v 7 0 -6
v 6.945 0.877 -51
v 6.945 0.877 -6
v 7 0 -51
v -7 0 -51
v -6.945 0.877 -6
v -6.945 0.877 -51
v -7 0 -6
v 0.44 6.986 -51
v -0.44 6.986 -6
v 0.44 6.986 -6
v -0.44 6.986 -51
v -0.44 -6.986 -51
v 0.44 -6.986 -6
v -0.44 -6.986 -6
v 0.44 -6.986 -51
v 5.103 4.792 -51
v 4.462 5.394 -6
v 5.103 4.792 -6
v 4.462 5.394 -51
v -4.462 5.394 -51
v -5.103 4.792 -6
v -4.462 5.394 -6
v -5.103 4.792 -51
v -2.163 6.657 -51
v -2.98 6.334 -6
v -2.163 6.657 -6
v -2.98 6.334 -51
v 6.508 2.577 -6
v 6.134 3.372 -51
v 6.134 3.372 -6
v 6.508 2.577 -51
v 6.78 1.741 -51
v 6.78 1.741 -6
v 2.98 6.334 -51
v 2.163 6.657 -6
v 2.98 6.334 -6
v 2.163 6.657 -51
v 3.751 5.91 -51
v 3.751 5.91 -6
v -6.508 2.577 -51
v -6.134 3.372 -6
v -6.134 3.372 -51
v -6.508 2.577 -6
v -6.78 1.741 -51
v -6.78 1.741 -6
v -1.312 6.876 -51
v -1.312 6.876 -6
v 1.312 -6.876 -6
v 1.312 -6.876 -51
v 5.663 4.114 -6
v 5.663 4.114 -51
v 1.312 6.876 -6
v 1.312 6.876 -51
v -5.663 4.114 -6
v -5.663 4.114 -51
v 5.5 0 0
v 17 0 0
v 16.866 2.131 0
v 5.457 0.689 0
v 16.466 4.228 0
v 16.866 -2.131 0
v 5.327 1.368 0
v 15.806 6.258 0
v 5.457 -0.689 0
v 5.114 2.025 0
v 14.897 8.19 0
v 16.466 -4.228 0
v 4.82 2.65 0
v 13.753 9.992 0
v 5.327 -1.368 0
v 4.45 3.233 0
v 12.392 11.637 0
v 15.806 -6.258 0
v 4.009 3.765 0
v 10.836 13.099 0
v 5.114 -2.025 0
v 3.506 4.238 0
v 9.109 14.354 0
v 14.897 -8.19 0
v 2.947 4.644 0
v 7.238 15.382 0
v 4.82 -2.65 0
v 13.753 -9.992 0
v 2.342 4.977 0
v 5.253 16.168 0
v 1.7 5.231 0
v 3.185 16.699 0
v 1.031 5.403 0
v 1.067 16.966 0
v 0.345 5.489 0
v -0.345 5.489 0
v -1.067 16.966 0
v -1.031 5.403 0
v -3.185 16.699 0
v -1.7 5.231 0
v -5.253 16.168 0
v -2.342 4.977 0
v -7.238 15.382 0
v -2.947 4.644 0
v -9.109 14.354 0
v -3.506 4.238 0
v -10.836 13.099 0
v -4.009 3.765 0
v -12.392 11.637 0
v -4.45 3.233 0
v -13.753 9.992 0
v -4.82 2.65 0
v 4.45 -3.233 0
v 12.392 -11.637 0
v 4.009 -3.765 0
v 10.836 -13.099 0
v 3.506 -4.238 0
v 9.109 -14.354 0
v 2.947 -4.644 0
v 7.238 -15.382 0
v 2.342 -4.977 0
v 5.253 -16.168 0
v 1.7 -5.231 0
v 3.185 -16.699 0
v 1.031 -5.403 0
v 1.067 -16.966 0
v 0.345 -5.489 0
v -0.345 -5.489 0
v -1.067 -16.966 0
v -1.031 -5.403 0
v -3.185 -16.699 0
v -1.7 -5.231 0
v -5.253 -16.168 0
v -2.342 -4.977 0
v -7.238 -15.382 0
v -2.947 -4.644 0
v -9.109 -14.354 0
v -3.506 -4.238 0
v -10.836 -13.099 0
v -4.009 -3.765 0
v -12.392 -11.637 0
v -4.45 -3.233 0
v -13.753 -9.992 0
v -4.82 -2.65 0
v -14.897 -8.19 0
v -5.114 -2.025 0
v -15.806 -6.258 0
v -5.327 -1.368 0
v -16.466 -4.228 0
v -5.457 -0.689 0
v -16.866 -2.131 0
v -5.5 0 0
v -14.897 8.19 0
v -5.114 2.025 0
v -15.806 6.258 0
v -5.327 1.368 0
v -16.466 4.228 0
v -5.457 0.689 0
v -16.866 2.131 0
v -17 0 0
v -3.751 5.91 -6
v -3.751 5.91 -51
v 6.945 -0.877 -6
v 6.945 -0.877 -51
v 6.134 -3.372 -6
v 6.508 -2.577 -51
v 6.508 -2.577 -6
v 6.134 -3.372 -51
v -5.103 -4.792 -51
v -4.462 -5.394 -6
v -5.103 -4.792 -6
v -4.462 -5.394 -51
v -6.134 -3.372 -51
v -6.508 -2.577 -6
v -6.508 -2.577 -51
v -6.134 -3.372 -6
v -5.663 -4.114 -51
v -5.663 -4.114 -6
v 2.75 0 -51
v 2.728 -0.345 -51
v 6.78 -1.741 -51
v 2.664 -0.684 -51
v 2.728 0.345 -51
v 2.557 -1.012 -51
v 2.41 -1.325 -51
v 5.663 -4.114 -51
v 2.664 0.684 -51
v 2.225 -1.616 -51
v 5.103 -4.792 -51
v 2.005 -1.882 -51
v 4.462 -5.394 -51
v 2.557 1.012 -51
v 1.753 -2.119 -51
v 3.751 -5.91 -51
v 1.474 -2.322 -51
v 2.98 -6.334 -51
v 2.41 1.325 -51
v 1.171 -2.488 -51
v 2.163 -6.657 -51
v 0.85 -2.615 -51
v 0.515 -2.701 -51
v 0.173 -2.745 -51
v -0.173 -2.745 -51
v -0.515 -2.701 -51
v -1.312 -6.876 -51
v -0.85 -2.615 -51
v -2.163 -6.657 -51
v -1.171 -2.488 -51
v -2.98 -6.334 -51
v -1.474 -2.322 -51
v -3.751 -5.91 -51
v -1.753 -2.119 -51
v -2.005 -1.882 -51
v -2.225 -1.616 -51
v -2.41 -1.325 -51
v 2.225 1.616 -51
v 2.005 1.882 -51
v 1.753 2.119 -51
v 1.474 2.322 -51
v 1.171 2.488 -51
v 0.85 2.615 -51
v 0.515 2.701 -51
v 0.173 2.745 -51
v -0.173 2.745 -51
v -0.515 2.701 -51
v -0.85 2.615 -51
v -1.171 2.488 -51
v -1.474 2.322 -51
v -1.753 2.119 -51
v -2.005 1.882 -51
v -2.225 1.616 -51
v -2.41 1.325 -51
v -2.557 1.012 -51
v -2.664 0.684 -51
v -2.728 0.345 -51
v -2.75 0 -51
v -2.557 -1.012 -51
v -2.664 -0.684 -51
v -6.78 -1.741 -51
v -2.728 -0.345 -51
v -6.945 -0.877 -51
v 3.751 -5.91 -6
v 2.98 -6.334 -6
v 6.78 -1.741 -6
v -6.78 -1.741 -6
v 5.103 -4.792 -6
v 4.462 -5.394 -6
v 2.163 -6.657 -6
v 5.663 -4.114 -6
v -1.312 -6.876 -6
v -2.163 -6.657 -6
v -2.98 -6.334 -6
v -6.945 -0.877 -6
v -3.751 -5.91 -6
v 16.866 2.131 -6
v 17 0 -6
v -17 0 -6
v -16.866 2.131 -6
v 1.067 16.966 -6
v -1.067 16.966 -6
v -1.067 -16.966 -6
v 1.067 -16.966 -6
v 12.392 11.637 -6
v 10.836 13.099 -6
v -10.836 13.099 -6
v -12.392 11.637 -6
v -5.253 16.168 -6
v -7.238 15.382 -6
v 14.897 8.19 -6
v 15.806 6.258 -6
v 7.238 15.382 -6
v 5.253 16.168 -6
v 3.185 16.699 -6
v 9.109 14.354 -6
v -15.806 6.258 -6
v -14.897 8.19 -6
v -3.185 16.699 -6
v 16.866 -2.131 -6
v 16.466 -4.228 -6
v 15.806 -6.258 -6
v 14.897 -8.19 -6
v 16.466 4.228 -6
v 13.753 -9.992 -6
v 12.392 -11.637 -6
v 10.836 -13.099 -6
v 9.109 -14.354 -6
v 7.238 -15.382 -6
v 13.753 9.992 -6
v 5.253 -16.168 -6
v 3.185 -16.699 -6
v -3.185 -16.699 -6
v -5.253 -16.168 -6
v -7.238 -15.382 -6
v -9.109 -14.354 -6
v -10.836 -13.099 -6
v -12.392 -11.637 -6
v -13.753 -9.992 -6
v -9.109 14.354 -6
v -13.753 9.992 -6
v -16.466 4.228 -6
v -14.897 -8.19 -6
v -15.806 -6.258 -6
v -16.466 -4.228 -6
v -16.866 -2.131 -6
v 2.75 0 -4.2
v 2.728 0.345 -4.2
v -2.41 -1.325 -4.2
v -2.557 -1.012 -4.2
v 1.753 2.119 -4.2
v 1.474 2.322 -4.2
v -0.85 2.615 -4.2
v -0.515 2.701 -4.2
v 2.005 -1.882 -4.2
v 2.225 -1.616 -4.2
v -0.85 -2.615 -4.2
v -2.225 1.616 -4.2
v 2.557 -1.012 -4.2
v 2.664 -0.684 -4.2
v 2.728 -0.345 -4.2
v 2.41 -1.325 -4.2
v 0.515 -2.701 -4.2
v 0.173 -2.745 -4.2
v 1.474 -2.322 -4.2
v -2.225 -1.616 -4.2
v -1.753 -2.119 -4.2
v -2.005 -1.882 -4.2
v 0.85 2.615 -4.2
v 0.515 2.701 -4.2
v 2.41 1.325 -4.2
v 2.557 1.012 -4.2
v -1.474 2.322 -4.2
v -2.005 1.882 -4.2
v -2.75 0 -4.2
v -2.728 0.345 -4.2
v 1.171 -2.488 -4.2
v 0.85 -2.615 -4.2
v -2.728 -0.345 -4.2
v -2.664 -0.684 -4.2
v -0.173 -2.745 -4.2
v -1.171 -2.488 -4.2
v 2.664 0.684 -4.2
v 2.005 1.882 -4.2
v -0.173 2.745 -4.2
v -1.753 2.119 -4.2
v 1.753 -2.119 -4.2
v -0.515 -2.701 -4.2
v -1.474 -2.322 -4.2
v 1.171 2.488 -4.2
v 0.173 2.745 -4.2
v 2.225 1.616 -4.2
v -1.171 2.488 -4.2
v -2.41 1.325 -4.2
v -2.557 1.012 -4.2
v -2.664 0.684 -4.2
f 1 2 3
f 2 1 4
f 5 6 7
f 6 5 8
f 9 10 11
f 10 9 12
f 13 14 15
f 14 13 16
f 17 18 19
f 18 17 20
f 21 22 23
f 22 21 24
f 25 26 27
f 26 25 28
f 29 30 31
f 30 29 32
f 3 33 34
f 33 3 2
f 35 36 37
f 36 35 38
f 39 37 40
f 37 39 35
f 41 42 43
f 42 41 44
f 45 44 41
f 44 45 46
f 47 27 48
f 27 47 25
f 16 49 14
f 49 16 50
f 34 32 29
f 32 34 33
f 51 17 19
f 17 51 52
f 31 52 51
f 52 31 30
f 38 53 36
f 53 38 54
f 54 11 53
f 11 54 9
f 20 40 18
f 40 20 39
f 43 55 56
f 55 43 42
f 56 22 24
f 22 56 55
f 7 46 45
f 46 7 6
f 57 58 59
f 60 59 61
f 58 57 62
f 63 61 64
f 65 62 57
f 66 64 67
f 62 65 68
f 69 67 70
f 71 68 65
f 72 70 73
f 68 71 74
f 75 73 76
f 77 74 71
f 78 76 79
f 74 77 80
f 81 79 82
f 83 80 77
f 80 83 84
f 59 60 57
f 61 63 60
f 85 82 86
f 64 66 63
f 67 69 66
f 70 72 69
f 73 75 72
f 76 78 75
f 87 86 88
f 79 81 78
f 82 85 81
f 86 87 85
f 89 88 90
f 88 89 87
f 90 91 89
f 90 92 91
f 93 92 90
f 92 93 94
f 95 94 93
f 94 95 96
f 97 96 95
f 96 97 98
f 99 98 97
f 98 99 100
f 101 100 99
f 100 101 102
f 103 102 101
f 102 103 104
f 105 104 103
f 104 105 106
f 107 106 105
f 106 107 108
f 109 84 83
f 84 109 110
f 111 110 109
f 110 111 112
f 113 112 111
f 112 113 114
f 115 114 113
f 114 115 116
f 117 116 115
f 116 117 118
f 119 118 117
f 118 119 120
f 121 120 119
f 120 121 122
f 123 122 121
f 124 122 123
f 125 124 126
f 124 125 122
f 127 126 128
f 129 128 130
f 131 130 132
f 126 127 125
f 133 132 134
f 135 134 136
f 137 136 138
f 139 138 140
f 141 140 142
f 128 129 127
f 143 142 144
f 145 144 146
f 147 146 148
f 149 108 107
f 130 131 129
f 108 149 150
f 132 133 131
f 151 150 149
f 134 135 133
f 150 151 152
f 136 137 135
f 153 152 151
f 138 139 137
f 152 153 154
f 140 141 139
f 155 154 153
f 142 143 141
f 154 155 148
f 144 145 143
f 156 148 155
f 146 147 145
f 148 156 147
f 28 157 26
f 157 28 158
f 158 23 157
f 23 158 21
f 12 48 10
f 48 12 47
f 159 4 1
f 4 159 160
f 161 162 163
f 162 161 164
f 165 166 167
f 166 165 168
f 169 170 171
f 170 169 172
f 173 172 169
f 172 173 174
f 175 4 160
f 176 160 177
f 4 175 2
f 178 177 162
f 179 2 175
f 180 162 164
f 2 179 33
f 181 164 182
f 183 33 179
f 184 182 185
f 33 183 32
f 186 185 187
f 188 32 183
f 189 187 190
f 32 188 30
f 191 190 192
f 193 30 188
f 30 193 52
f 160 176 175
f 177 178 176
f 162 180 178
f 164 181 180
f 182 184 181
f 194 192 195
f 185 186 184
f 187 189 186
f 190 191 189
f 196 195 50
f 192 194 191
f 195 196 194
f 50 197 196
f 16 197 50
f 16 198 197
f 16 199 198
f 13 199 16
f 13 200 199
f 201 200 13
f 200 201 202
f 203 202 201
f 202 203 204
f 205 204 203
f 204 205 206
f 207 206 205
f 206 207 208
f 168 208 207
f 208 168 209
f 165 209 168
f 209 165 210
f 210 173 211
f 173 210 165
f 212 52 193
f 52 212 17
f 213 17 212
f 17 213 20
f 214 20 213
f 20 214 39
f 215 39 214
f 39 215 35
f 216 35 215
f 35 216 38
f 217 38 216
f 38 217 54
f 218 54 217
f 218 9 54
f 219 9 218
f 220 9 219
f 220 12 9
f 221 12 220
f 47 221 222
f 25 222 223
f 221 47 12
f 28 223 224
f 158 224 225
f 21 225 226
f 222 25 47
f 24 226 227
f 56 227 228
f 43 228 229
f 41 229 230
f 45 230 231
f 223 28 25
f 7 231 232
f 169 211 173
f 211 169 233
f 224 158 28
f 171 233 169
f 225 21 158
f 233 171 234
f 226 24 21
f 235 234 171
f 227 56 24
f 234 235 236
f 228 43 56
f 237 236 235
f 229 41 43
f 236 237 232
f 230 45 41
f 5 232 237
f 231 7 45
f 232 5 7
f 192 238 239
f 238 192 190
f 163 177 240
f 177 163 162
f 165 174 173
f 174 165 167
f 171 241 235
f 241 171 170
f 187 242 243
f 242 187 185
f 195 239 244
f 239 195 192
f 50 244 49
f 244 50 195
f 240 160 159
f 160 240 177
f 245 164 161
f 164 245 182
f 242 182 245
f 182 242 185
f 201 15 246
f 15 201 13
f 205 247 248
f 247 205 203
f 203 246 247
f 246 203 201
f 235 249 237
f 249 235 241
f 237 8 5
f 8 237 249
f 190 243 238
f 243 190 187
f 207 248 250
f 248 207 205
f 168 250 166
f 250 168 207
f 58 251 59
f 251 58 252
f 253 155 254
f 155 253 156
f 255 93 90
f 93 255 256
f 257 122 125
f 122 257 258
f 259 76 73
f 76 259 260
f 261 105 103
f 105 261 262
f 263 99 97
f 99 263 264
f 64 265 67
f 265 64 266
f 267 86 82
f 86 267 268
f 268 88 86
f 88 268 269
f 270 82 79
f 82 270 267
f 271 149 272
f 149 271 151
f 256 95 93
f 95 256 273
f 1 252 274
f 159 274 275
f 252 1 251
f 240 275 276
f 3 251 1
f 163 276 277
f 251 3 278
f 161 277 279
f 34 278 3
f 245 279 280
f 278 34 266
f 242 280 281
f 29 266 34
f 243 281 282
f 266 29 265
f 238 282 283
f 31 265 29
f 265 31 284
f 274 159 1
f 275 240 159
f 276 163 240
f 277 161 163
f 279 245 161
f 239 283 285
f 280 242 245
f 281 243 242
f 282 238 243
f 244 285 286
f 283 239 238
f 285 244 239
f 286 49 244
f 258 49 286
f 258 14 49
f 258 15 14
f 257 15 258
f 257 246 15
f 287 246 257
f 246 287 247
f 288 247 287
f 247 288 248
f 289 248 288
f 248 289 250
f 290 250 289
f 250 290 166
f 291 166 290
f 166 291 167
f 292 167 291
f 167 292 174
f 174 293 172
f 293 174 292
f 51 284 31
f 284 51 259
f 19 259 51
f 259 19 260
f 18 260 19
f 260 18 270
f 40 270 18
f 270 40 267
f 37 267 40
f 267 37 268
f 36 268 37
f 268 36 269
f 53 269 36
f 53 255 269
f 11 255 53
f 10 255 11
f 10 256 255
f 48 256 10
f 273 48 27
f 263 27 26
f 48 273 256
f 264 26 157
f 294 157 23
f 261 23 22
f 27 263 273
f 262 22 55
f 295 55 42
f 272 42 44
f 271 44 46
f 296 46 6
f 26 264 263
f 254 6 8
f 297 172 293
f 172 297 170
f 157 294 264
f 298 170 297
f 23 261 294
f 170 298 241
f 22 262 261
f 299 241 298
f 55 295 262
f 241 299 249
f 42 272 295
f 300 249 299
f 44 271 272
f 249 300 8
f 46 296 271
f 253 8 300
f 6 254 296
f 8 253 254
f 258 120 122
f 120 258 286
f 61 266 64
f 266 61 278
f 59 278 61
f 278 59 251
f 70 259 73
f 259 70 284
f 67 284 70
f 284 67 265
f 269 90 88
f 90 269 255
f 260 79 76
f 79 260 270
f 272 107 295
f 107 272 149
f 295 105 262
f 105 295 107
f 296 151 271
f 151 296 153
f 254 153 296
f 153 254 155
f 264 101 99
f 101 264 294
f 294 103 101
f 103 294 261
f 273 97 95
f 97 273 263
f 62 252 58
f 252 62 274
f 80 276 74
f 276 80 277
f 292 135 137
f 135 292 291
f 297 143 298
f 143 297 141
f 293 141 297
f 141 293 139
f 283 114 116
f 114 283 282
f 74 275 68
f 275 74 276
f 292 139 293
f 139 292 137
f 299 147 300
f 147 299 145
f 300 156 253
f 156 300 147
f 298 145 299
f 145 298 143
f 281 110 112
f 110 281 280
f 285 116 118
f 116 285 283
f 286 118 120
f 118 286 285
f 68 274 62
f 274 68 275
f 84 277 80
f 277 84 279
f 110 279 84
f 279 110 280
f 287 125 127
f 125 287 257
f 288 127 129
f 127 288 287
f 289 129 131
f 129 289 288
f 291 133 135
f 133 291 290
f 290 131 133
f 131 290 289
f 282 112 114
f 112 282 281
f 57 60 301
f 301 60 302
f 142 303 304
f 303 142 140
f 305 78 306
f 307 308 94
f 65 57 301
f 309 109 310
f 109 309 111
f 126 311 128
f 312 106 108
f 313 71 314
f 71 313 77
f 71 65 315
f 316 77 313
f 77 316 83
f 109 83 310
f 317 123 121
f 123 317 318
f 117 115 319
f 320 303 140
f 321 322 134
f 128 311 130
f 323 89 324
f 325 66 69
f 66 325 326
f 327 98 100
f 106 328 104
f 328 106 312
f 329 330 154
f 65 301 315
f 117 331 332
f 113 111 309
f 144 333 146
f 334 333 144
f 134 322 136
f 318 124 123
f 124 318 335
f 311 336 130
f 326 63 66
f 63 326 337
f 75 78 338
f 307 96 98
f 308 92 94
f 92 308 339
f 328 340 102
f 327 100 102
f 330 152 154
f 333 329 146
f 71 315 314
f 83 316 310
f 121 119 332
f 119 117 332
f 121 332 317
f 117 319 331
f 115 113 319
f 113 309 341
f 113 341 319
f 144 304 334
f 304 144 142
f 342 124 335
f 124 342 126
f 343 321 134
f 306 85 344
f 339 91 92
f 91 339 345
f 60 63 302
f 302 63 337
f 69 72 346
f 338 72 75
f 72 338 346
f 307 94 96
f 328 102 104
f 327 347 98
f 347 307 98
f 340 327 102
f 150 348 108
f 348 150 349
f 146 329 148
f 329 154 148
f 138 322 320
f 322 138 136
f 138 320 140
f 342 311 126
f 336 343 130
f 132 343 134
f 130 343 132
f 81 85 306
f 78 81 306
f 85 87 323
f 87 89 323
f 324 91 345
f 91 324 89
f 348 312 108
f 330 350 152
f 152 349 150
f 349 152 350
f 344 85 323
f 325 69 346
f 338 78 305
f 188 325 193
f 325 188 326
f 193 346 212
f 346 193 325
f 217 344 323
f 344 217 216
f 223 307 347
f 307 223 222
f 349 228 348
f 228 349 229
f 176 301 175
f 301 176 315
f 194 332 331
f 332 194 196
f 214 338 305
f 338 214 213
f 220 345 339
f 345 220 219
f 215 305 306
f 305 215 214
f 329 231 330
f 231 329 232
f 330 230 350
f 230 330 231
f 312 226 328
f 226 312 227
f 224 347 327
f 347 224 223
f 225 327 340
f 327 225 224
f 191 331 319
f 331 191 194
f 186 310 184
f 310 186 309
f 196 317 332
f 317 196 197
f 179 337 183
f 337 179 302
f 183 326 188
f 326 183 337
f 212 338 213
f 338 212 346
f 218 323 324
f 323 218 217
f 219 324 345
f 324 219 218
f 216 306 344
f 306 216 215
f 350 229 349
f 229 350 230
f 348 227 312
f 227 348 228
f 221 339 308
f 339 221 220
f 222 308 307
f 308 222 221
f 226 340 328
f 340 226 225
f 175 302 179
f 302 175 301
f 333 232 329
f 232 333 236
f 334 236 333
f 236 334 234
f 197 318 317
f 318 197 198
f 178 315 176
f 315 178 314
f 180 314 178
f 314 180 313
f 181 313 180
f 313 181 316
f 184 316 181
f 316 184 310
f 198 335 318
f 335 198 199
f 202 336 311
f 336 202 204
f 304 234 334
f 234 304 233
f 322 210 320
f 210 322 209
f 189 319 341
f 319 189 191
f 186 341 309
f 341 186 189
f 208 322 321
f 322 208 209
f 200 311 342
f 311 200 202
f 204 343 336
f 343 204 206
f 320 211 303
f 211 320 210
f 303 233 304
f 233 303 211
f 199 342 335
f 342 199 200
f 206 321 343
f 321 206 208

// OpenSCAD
$fn = 50;


difference() {
	union() {
		translate(v = [0, 0, -51.0000000000]) {
			cylinder(h = 51, r = 7.0000000000);
		}
		translate(v = [0, 0, -6.0000000000]) {
			cylinder(h = 6, r = 17.0000000000);
		}
	}
	union() {
		translate(v = [0, 0, 0]) {
			rotate(a = [0, 0, 0]) {
				difference() {
					union() {
						#translate(v = [0, 0, -51.0000000000]) {
							cylinder(h = 51, r = 2.2500000000);
						}
						#translate(v = [0, 0, -4.2000000000]) {
							cylinder(h = 4.2000000000, r = 7.0000000000, r1 = 2.7500000000, r2 = 5.5000000000);
						}
						#translate(v = [0, 0, -51.0000000000]) {
							cylinder(h = 51, r = 2.7500000000);
						}
						#translate(v = [0, 0, -51.0000000000]) {
							cylinder(h = 51, r = 2.2500000000);
						}
					}
					union();
				}
			}
		}
	}
}
